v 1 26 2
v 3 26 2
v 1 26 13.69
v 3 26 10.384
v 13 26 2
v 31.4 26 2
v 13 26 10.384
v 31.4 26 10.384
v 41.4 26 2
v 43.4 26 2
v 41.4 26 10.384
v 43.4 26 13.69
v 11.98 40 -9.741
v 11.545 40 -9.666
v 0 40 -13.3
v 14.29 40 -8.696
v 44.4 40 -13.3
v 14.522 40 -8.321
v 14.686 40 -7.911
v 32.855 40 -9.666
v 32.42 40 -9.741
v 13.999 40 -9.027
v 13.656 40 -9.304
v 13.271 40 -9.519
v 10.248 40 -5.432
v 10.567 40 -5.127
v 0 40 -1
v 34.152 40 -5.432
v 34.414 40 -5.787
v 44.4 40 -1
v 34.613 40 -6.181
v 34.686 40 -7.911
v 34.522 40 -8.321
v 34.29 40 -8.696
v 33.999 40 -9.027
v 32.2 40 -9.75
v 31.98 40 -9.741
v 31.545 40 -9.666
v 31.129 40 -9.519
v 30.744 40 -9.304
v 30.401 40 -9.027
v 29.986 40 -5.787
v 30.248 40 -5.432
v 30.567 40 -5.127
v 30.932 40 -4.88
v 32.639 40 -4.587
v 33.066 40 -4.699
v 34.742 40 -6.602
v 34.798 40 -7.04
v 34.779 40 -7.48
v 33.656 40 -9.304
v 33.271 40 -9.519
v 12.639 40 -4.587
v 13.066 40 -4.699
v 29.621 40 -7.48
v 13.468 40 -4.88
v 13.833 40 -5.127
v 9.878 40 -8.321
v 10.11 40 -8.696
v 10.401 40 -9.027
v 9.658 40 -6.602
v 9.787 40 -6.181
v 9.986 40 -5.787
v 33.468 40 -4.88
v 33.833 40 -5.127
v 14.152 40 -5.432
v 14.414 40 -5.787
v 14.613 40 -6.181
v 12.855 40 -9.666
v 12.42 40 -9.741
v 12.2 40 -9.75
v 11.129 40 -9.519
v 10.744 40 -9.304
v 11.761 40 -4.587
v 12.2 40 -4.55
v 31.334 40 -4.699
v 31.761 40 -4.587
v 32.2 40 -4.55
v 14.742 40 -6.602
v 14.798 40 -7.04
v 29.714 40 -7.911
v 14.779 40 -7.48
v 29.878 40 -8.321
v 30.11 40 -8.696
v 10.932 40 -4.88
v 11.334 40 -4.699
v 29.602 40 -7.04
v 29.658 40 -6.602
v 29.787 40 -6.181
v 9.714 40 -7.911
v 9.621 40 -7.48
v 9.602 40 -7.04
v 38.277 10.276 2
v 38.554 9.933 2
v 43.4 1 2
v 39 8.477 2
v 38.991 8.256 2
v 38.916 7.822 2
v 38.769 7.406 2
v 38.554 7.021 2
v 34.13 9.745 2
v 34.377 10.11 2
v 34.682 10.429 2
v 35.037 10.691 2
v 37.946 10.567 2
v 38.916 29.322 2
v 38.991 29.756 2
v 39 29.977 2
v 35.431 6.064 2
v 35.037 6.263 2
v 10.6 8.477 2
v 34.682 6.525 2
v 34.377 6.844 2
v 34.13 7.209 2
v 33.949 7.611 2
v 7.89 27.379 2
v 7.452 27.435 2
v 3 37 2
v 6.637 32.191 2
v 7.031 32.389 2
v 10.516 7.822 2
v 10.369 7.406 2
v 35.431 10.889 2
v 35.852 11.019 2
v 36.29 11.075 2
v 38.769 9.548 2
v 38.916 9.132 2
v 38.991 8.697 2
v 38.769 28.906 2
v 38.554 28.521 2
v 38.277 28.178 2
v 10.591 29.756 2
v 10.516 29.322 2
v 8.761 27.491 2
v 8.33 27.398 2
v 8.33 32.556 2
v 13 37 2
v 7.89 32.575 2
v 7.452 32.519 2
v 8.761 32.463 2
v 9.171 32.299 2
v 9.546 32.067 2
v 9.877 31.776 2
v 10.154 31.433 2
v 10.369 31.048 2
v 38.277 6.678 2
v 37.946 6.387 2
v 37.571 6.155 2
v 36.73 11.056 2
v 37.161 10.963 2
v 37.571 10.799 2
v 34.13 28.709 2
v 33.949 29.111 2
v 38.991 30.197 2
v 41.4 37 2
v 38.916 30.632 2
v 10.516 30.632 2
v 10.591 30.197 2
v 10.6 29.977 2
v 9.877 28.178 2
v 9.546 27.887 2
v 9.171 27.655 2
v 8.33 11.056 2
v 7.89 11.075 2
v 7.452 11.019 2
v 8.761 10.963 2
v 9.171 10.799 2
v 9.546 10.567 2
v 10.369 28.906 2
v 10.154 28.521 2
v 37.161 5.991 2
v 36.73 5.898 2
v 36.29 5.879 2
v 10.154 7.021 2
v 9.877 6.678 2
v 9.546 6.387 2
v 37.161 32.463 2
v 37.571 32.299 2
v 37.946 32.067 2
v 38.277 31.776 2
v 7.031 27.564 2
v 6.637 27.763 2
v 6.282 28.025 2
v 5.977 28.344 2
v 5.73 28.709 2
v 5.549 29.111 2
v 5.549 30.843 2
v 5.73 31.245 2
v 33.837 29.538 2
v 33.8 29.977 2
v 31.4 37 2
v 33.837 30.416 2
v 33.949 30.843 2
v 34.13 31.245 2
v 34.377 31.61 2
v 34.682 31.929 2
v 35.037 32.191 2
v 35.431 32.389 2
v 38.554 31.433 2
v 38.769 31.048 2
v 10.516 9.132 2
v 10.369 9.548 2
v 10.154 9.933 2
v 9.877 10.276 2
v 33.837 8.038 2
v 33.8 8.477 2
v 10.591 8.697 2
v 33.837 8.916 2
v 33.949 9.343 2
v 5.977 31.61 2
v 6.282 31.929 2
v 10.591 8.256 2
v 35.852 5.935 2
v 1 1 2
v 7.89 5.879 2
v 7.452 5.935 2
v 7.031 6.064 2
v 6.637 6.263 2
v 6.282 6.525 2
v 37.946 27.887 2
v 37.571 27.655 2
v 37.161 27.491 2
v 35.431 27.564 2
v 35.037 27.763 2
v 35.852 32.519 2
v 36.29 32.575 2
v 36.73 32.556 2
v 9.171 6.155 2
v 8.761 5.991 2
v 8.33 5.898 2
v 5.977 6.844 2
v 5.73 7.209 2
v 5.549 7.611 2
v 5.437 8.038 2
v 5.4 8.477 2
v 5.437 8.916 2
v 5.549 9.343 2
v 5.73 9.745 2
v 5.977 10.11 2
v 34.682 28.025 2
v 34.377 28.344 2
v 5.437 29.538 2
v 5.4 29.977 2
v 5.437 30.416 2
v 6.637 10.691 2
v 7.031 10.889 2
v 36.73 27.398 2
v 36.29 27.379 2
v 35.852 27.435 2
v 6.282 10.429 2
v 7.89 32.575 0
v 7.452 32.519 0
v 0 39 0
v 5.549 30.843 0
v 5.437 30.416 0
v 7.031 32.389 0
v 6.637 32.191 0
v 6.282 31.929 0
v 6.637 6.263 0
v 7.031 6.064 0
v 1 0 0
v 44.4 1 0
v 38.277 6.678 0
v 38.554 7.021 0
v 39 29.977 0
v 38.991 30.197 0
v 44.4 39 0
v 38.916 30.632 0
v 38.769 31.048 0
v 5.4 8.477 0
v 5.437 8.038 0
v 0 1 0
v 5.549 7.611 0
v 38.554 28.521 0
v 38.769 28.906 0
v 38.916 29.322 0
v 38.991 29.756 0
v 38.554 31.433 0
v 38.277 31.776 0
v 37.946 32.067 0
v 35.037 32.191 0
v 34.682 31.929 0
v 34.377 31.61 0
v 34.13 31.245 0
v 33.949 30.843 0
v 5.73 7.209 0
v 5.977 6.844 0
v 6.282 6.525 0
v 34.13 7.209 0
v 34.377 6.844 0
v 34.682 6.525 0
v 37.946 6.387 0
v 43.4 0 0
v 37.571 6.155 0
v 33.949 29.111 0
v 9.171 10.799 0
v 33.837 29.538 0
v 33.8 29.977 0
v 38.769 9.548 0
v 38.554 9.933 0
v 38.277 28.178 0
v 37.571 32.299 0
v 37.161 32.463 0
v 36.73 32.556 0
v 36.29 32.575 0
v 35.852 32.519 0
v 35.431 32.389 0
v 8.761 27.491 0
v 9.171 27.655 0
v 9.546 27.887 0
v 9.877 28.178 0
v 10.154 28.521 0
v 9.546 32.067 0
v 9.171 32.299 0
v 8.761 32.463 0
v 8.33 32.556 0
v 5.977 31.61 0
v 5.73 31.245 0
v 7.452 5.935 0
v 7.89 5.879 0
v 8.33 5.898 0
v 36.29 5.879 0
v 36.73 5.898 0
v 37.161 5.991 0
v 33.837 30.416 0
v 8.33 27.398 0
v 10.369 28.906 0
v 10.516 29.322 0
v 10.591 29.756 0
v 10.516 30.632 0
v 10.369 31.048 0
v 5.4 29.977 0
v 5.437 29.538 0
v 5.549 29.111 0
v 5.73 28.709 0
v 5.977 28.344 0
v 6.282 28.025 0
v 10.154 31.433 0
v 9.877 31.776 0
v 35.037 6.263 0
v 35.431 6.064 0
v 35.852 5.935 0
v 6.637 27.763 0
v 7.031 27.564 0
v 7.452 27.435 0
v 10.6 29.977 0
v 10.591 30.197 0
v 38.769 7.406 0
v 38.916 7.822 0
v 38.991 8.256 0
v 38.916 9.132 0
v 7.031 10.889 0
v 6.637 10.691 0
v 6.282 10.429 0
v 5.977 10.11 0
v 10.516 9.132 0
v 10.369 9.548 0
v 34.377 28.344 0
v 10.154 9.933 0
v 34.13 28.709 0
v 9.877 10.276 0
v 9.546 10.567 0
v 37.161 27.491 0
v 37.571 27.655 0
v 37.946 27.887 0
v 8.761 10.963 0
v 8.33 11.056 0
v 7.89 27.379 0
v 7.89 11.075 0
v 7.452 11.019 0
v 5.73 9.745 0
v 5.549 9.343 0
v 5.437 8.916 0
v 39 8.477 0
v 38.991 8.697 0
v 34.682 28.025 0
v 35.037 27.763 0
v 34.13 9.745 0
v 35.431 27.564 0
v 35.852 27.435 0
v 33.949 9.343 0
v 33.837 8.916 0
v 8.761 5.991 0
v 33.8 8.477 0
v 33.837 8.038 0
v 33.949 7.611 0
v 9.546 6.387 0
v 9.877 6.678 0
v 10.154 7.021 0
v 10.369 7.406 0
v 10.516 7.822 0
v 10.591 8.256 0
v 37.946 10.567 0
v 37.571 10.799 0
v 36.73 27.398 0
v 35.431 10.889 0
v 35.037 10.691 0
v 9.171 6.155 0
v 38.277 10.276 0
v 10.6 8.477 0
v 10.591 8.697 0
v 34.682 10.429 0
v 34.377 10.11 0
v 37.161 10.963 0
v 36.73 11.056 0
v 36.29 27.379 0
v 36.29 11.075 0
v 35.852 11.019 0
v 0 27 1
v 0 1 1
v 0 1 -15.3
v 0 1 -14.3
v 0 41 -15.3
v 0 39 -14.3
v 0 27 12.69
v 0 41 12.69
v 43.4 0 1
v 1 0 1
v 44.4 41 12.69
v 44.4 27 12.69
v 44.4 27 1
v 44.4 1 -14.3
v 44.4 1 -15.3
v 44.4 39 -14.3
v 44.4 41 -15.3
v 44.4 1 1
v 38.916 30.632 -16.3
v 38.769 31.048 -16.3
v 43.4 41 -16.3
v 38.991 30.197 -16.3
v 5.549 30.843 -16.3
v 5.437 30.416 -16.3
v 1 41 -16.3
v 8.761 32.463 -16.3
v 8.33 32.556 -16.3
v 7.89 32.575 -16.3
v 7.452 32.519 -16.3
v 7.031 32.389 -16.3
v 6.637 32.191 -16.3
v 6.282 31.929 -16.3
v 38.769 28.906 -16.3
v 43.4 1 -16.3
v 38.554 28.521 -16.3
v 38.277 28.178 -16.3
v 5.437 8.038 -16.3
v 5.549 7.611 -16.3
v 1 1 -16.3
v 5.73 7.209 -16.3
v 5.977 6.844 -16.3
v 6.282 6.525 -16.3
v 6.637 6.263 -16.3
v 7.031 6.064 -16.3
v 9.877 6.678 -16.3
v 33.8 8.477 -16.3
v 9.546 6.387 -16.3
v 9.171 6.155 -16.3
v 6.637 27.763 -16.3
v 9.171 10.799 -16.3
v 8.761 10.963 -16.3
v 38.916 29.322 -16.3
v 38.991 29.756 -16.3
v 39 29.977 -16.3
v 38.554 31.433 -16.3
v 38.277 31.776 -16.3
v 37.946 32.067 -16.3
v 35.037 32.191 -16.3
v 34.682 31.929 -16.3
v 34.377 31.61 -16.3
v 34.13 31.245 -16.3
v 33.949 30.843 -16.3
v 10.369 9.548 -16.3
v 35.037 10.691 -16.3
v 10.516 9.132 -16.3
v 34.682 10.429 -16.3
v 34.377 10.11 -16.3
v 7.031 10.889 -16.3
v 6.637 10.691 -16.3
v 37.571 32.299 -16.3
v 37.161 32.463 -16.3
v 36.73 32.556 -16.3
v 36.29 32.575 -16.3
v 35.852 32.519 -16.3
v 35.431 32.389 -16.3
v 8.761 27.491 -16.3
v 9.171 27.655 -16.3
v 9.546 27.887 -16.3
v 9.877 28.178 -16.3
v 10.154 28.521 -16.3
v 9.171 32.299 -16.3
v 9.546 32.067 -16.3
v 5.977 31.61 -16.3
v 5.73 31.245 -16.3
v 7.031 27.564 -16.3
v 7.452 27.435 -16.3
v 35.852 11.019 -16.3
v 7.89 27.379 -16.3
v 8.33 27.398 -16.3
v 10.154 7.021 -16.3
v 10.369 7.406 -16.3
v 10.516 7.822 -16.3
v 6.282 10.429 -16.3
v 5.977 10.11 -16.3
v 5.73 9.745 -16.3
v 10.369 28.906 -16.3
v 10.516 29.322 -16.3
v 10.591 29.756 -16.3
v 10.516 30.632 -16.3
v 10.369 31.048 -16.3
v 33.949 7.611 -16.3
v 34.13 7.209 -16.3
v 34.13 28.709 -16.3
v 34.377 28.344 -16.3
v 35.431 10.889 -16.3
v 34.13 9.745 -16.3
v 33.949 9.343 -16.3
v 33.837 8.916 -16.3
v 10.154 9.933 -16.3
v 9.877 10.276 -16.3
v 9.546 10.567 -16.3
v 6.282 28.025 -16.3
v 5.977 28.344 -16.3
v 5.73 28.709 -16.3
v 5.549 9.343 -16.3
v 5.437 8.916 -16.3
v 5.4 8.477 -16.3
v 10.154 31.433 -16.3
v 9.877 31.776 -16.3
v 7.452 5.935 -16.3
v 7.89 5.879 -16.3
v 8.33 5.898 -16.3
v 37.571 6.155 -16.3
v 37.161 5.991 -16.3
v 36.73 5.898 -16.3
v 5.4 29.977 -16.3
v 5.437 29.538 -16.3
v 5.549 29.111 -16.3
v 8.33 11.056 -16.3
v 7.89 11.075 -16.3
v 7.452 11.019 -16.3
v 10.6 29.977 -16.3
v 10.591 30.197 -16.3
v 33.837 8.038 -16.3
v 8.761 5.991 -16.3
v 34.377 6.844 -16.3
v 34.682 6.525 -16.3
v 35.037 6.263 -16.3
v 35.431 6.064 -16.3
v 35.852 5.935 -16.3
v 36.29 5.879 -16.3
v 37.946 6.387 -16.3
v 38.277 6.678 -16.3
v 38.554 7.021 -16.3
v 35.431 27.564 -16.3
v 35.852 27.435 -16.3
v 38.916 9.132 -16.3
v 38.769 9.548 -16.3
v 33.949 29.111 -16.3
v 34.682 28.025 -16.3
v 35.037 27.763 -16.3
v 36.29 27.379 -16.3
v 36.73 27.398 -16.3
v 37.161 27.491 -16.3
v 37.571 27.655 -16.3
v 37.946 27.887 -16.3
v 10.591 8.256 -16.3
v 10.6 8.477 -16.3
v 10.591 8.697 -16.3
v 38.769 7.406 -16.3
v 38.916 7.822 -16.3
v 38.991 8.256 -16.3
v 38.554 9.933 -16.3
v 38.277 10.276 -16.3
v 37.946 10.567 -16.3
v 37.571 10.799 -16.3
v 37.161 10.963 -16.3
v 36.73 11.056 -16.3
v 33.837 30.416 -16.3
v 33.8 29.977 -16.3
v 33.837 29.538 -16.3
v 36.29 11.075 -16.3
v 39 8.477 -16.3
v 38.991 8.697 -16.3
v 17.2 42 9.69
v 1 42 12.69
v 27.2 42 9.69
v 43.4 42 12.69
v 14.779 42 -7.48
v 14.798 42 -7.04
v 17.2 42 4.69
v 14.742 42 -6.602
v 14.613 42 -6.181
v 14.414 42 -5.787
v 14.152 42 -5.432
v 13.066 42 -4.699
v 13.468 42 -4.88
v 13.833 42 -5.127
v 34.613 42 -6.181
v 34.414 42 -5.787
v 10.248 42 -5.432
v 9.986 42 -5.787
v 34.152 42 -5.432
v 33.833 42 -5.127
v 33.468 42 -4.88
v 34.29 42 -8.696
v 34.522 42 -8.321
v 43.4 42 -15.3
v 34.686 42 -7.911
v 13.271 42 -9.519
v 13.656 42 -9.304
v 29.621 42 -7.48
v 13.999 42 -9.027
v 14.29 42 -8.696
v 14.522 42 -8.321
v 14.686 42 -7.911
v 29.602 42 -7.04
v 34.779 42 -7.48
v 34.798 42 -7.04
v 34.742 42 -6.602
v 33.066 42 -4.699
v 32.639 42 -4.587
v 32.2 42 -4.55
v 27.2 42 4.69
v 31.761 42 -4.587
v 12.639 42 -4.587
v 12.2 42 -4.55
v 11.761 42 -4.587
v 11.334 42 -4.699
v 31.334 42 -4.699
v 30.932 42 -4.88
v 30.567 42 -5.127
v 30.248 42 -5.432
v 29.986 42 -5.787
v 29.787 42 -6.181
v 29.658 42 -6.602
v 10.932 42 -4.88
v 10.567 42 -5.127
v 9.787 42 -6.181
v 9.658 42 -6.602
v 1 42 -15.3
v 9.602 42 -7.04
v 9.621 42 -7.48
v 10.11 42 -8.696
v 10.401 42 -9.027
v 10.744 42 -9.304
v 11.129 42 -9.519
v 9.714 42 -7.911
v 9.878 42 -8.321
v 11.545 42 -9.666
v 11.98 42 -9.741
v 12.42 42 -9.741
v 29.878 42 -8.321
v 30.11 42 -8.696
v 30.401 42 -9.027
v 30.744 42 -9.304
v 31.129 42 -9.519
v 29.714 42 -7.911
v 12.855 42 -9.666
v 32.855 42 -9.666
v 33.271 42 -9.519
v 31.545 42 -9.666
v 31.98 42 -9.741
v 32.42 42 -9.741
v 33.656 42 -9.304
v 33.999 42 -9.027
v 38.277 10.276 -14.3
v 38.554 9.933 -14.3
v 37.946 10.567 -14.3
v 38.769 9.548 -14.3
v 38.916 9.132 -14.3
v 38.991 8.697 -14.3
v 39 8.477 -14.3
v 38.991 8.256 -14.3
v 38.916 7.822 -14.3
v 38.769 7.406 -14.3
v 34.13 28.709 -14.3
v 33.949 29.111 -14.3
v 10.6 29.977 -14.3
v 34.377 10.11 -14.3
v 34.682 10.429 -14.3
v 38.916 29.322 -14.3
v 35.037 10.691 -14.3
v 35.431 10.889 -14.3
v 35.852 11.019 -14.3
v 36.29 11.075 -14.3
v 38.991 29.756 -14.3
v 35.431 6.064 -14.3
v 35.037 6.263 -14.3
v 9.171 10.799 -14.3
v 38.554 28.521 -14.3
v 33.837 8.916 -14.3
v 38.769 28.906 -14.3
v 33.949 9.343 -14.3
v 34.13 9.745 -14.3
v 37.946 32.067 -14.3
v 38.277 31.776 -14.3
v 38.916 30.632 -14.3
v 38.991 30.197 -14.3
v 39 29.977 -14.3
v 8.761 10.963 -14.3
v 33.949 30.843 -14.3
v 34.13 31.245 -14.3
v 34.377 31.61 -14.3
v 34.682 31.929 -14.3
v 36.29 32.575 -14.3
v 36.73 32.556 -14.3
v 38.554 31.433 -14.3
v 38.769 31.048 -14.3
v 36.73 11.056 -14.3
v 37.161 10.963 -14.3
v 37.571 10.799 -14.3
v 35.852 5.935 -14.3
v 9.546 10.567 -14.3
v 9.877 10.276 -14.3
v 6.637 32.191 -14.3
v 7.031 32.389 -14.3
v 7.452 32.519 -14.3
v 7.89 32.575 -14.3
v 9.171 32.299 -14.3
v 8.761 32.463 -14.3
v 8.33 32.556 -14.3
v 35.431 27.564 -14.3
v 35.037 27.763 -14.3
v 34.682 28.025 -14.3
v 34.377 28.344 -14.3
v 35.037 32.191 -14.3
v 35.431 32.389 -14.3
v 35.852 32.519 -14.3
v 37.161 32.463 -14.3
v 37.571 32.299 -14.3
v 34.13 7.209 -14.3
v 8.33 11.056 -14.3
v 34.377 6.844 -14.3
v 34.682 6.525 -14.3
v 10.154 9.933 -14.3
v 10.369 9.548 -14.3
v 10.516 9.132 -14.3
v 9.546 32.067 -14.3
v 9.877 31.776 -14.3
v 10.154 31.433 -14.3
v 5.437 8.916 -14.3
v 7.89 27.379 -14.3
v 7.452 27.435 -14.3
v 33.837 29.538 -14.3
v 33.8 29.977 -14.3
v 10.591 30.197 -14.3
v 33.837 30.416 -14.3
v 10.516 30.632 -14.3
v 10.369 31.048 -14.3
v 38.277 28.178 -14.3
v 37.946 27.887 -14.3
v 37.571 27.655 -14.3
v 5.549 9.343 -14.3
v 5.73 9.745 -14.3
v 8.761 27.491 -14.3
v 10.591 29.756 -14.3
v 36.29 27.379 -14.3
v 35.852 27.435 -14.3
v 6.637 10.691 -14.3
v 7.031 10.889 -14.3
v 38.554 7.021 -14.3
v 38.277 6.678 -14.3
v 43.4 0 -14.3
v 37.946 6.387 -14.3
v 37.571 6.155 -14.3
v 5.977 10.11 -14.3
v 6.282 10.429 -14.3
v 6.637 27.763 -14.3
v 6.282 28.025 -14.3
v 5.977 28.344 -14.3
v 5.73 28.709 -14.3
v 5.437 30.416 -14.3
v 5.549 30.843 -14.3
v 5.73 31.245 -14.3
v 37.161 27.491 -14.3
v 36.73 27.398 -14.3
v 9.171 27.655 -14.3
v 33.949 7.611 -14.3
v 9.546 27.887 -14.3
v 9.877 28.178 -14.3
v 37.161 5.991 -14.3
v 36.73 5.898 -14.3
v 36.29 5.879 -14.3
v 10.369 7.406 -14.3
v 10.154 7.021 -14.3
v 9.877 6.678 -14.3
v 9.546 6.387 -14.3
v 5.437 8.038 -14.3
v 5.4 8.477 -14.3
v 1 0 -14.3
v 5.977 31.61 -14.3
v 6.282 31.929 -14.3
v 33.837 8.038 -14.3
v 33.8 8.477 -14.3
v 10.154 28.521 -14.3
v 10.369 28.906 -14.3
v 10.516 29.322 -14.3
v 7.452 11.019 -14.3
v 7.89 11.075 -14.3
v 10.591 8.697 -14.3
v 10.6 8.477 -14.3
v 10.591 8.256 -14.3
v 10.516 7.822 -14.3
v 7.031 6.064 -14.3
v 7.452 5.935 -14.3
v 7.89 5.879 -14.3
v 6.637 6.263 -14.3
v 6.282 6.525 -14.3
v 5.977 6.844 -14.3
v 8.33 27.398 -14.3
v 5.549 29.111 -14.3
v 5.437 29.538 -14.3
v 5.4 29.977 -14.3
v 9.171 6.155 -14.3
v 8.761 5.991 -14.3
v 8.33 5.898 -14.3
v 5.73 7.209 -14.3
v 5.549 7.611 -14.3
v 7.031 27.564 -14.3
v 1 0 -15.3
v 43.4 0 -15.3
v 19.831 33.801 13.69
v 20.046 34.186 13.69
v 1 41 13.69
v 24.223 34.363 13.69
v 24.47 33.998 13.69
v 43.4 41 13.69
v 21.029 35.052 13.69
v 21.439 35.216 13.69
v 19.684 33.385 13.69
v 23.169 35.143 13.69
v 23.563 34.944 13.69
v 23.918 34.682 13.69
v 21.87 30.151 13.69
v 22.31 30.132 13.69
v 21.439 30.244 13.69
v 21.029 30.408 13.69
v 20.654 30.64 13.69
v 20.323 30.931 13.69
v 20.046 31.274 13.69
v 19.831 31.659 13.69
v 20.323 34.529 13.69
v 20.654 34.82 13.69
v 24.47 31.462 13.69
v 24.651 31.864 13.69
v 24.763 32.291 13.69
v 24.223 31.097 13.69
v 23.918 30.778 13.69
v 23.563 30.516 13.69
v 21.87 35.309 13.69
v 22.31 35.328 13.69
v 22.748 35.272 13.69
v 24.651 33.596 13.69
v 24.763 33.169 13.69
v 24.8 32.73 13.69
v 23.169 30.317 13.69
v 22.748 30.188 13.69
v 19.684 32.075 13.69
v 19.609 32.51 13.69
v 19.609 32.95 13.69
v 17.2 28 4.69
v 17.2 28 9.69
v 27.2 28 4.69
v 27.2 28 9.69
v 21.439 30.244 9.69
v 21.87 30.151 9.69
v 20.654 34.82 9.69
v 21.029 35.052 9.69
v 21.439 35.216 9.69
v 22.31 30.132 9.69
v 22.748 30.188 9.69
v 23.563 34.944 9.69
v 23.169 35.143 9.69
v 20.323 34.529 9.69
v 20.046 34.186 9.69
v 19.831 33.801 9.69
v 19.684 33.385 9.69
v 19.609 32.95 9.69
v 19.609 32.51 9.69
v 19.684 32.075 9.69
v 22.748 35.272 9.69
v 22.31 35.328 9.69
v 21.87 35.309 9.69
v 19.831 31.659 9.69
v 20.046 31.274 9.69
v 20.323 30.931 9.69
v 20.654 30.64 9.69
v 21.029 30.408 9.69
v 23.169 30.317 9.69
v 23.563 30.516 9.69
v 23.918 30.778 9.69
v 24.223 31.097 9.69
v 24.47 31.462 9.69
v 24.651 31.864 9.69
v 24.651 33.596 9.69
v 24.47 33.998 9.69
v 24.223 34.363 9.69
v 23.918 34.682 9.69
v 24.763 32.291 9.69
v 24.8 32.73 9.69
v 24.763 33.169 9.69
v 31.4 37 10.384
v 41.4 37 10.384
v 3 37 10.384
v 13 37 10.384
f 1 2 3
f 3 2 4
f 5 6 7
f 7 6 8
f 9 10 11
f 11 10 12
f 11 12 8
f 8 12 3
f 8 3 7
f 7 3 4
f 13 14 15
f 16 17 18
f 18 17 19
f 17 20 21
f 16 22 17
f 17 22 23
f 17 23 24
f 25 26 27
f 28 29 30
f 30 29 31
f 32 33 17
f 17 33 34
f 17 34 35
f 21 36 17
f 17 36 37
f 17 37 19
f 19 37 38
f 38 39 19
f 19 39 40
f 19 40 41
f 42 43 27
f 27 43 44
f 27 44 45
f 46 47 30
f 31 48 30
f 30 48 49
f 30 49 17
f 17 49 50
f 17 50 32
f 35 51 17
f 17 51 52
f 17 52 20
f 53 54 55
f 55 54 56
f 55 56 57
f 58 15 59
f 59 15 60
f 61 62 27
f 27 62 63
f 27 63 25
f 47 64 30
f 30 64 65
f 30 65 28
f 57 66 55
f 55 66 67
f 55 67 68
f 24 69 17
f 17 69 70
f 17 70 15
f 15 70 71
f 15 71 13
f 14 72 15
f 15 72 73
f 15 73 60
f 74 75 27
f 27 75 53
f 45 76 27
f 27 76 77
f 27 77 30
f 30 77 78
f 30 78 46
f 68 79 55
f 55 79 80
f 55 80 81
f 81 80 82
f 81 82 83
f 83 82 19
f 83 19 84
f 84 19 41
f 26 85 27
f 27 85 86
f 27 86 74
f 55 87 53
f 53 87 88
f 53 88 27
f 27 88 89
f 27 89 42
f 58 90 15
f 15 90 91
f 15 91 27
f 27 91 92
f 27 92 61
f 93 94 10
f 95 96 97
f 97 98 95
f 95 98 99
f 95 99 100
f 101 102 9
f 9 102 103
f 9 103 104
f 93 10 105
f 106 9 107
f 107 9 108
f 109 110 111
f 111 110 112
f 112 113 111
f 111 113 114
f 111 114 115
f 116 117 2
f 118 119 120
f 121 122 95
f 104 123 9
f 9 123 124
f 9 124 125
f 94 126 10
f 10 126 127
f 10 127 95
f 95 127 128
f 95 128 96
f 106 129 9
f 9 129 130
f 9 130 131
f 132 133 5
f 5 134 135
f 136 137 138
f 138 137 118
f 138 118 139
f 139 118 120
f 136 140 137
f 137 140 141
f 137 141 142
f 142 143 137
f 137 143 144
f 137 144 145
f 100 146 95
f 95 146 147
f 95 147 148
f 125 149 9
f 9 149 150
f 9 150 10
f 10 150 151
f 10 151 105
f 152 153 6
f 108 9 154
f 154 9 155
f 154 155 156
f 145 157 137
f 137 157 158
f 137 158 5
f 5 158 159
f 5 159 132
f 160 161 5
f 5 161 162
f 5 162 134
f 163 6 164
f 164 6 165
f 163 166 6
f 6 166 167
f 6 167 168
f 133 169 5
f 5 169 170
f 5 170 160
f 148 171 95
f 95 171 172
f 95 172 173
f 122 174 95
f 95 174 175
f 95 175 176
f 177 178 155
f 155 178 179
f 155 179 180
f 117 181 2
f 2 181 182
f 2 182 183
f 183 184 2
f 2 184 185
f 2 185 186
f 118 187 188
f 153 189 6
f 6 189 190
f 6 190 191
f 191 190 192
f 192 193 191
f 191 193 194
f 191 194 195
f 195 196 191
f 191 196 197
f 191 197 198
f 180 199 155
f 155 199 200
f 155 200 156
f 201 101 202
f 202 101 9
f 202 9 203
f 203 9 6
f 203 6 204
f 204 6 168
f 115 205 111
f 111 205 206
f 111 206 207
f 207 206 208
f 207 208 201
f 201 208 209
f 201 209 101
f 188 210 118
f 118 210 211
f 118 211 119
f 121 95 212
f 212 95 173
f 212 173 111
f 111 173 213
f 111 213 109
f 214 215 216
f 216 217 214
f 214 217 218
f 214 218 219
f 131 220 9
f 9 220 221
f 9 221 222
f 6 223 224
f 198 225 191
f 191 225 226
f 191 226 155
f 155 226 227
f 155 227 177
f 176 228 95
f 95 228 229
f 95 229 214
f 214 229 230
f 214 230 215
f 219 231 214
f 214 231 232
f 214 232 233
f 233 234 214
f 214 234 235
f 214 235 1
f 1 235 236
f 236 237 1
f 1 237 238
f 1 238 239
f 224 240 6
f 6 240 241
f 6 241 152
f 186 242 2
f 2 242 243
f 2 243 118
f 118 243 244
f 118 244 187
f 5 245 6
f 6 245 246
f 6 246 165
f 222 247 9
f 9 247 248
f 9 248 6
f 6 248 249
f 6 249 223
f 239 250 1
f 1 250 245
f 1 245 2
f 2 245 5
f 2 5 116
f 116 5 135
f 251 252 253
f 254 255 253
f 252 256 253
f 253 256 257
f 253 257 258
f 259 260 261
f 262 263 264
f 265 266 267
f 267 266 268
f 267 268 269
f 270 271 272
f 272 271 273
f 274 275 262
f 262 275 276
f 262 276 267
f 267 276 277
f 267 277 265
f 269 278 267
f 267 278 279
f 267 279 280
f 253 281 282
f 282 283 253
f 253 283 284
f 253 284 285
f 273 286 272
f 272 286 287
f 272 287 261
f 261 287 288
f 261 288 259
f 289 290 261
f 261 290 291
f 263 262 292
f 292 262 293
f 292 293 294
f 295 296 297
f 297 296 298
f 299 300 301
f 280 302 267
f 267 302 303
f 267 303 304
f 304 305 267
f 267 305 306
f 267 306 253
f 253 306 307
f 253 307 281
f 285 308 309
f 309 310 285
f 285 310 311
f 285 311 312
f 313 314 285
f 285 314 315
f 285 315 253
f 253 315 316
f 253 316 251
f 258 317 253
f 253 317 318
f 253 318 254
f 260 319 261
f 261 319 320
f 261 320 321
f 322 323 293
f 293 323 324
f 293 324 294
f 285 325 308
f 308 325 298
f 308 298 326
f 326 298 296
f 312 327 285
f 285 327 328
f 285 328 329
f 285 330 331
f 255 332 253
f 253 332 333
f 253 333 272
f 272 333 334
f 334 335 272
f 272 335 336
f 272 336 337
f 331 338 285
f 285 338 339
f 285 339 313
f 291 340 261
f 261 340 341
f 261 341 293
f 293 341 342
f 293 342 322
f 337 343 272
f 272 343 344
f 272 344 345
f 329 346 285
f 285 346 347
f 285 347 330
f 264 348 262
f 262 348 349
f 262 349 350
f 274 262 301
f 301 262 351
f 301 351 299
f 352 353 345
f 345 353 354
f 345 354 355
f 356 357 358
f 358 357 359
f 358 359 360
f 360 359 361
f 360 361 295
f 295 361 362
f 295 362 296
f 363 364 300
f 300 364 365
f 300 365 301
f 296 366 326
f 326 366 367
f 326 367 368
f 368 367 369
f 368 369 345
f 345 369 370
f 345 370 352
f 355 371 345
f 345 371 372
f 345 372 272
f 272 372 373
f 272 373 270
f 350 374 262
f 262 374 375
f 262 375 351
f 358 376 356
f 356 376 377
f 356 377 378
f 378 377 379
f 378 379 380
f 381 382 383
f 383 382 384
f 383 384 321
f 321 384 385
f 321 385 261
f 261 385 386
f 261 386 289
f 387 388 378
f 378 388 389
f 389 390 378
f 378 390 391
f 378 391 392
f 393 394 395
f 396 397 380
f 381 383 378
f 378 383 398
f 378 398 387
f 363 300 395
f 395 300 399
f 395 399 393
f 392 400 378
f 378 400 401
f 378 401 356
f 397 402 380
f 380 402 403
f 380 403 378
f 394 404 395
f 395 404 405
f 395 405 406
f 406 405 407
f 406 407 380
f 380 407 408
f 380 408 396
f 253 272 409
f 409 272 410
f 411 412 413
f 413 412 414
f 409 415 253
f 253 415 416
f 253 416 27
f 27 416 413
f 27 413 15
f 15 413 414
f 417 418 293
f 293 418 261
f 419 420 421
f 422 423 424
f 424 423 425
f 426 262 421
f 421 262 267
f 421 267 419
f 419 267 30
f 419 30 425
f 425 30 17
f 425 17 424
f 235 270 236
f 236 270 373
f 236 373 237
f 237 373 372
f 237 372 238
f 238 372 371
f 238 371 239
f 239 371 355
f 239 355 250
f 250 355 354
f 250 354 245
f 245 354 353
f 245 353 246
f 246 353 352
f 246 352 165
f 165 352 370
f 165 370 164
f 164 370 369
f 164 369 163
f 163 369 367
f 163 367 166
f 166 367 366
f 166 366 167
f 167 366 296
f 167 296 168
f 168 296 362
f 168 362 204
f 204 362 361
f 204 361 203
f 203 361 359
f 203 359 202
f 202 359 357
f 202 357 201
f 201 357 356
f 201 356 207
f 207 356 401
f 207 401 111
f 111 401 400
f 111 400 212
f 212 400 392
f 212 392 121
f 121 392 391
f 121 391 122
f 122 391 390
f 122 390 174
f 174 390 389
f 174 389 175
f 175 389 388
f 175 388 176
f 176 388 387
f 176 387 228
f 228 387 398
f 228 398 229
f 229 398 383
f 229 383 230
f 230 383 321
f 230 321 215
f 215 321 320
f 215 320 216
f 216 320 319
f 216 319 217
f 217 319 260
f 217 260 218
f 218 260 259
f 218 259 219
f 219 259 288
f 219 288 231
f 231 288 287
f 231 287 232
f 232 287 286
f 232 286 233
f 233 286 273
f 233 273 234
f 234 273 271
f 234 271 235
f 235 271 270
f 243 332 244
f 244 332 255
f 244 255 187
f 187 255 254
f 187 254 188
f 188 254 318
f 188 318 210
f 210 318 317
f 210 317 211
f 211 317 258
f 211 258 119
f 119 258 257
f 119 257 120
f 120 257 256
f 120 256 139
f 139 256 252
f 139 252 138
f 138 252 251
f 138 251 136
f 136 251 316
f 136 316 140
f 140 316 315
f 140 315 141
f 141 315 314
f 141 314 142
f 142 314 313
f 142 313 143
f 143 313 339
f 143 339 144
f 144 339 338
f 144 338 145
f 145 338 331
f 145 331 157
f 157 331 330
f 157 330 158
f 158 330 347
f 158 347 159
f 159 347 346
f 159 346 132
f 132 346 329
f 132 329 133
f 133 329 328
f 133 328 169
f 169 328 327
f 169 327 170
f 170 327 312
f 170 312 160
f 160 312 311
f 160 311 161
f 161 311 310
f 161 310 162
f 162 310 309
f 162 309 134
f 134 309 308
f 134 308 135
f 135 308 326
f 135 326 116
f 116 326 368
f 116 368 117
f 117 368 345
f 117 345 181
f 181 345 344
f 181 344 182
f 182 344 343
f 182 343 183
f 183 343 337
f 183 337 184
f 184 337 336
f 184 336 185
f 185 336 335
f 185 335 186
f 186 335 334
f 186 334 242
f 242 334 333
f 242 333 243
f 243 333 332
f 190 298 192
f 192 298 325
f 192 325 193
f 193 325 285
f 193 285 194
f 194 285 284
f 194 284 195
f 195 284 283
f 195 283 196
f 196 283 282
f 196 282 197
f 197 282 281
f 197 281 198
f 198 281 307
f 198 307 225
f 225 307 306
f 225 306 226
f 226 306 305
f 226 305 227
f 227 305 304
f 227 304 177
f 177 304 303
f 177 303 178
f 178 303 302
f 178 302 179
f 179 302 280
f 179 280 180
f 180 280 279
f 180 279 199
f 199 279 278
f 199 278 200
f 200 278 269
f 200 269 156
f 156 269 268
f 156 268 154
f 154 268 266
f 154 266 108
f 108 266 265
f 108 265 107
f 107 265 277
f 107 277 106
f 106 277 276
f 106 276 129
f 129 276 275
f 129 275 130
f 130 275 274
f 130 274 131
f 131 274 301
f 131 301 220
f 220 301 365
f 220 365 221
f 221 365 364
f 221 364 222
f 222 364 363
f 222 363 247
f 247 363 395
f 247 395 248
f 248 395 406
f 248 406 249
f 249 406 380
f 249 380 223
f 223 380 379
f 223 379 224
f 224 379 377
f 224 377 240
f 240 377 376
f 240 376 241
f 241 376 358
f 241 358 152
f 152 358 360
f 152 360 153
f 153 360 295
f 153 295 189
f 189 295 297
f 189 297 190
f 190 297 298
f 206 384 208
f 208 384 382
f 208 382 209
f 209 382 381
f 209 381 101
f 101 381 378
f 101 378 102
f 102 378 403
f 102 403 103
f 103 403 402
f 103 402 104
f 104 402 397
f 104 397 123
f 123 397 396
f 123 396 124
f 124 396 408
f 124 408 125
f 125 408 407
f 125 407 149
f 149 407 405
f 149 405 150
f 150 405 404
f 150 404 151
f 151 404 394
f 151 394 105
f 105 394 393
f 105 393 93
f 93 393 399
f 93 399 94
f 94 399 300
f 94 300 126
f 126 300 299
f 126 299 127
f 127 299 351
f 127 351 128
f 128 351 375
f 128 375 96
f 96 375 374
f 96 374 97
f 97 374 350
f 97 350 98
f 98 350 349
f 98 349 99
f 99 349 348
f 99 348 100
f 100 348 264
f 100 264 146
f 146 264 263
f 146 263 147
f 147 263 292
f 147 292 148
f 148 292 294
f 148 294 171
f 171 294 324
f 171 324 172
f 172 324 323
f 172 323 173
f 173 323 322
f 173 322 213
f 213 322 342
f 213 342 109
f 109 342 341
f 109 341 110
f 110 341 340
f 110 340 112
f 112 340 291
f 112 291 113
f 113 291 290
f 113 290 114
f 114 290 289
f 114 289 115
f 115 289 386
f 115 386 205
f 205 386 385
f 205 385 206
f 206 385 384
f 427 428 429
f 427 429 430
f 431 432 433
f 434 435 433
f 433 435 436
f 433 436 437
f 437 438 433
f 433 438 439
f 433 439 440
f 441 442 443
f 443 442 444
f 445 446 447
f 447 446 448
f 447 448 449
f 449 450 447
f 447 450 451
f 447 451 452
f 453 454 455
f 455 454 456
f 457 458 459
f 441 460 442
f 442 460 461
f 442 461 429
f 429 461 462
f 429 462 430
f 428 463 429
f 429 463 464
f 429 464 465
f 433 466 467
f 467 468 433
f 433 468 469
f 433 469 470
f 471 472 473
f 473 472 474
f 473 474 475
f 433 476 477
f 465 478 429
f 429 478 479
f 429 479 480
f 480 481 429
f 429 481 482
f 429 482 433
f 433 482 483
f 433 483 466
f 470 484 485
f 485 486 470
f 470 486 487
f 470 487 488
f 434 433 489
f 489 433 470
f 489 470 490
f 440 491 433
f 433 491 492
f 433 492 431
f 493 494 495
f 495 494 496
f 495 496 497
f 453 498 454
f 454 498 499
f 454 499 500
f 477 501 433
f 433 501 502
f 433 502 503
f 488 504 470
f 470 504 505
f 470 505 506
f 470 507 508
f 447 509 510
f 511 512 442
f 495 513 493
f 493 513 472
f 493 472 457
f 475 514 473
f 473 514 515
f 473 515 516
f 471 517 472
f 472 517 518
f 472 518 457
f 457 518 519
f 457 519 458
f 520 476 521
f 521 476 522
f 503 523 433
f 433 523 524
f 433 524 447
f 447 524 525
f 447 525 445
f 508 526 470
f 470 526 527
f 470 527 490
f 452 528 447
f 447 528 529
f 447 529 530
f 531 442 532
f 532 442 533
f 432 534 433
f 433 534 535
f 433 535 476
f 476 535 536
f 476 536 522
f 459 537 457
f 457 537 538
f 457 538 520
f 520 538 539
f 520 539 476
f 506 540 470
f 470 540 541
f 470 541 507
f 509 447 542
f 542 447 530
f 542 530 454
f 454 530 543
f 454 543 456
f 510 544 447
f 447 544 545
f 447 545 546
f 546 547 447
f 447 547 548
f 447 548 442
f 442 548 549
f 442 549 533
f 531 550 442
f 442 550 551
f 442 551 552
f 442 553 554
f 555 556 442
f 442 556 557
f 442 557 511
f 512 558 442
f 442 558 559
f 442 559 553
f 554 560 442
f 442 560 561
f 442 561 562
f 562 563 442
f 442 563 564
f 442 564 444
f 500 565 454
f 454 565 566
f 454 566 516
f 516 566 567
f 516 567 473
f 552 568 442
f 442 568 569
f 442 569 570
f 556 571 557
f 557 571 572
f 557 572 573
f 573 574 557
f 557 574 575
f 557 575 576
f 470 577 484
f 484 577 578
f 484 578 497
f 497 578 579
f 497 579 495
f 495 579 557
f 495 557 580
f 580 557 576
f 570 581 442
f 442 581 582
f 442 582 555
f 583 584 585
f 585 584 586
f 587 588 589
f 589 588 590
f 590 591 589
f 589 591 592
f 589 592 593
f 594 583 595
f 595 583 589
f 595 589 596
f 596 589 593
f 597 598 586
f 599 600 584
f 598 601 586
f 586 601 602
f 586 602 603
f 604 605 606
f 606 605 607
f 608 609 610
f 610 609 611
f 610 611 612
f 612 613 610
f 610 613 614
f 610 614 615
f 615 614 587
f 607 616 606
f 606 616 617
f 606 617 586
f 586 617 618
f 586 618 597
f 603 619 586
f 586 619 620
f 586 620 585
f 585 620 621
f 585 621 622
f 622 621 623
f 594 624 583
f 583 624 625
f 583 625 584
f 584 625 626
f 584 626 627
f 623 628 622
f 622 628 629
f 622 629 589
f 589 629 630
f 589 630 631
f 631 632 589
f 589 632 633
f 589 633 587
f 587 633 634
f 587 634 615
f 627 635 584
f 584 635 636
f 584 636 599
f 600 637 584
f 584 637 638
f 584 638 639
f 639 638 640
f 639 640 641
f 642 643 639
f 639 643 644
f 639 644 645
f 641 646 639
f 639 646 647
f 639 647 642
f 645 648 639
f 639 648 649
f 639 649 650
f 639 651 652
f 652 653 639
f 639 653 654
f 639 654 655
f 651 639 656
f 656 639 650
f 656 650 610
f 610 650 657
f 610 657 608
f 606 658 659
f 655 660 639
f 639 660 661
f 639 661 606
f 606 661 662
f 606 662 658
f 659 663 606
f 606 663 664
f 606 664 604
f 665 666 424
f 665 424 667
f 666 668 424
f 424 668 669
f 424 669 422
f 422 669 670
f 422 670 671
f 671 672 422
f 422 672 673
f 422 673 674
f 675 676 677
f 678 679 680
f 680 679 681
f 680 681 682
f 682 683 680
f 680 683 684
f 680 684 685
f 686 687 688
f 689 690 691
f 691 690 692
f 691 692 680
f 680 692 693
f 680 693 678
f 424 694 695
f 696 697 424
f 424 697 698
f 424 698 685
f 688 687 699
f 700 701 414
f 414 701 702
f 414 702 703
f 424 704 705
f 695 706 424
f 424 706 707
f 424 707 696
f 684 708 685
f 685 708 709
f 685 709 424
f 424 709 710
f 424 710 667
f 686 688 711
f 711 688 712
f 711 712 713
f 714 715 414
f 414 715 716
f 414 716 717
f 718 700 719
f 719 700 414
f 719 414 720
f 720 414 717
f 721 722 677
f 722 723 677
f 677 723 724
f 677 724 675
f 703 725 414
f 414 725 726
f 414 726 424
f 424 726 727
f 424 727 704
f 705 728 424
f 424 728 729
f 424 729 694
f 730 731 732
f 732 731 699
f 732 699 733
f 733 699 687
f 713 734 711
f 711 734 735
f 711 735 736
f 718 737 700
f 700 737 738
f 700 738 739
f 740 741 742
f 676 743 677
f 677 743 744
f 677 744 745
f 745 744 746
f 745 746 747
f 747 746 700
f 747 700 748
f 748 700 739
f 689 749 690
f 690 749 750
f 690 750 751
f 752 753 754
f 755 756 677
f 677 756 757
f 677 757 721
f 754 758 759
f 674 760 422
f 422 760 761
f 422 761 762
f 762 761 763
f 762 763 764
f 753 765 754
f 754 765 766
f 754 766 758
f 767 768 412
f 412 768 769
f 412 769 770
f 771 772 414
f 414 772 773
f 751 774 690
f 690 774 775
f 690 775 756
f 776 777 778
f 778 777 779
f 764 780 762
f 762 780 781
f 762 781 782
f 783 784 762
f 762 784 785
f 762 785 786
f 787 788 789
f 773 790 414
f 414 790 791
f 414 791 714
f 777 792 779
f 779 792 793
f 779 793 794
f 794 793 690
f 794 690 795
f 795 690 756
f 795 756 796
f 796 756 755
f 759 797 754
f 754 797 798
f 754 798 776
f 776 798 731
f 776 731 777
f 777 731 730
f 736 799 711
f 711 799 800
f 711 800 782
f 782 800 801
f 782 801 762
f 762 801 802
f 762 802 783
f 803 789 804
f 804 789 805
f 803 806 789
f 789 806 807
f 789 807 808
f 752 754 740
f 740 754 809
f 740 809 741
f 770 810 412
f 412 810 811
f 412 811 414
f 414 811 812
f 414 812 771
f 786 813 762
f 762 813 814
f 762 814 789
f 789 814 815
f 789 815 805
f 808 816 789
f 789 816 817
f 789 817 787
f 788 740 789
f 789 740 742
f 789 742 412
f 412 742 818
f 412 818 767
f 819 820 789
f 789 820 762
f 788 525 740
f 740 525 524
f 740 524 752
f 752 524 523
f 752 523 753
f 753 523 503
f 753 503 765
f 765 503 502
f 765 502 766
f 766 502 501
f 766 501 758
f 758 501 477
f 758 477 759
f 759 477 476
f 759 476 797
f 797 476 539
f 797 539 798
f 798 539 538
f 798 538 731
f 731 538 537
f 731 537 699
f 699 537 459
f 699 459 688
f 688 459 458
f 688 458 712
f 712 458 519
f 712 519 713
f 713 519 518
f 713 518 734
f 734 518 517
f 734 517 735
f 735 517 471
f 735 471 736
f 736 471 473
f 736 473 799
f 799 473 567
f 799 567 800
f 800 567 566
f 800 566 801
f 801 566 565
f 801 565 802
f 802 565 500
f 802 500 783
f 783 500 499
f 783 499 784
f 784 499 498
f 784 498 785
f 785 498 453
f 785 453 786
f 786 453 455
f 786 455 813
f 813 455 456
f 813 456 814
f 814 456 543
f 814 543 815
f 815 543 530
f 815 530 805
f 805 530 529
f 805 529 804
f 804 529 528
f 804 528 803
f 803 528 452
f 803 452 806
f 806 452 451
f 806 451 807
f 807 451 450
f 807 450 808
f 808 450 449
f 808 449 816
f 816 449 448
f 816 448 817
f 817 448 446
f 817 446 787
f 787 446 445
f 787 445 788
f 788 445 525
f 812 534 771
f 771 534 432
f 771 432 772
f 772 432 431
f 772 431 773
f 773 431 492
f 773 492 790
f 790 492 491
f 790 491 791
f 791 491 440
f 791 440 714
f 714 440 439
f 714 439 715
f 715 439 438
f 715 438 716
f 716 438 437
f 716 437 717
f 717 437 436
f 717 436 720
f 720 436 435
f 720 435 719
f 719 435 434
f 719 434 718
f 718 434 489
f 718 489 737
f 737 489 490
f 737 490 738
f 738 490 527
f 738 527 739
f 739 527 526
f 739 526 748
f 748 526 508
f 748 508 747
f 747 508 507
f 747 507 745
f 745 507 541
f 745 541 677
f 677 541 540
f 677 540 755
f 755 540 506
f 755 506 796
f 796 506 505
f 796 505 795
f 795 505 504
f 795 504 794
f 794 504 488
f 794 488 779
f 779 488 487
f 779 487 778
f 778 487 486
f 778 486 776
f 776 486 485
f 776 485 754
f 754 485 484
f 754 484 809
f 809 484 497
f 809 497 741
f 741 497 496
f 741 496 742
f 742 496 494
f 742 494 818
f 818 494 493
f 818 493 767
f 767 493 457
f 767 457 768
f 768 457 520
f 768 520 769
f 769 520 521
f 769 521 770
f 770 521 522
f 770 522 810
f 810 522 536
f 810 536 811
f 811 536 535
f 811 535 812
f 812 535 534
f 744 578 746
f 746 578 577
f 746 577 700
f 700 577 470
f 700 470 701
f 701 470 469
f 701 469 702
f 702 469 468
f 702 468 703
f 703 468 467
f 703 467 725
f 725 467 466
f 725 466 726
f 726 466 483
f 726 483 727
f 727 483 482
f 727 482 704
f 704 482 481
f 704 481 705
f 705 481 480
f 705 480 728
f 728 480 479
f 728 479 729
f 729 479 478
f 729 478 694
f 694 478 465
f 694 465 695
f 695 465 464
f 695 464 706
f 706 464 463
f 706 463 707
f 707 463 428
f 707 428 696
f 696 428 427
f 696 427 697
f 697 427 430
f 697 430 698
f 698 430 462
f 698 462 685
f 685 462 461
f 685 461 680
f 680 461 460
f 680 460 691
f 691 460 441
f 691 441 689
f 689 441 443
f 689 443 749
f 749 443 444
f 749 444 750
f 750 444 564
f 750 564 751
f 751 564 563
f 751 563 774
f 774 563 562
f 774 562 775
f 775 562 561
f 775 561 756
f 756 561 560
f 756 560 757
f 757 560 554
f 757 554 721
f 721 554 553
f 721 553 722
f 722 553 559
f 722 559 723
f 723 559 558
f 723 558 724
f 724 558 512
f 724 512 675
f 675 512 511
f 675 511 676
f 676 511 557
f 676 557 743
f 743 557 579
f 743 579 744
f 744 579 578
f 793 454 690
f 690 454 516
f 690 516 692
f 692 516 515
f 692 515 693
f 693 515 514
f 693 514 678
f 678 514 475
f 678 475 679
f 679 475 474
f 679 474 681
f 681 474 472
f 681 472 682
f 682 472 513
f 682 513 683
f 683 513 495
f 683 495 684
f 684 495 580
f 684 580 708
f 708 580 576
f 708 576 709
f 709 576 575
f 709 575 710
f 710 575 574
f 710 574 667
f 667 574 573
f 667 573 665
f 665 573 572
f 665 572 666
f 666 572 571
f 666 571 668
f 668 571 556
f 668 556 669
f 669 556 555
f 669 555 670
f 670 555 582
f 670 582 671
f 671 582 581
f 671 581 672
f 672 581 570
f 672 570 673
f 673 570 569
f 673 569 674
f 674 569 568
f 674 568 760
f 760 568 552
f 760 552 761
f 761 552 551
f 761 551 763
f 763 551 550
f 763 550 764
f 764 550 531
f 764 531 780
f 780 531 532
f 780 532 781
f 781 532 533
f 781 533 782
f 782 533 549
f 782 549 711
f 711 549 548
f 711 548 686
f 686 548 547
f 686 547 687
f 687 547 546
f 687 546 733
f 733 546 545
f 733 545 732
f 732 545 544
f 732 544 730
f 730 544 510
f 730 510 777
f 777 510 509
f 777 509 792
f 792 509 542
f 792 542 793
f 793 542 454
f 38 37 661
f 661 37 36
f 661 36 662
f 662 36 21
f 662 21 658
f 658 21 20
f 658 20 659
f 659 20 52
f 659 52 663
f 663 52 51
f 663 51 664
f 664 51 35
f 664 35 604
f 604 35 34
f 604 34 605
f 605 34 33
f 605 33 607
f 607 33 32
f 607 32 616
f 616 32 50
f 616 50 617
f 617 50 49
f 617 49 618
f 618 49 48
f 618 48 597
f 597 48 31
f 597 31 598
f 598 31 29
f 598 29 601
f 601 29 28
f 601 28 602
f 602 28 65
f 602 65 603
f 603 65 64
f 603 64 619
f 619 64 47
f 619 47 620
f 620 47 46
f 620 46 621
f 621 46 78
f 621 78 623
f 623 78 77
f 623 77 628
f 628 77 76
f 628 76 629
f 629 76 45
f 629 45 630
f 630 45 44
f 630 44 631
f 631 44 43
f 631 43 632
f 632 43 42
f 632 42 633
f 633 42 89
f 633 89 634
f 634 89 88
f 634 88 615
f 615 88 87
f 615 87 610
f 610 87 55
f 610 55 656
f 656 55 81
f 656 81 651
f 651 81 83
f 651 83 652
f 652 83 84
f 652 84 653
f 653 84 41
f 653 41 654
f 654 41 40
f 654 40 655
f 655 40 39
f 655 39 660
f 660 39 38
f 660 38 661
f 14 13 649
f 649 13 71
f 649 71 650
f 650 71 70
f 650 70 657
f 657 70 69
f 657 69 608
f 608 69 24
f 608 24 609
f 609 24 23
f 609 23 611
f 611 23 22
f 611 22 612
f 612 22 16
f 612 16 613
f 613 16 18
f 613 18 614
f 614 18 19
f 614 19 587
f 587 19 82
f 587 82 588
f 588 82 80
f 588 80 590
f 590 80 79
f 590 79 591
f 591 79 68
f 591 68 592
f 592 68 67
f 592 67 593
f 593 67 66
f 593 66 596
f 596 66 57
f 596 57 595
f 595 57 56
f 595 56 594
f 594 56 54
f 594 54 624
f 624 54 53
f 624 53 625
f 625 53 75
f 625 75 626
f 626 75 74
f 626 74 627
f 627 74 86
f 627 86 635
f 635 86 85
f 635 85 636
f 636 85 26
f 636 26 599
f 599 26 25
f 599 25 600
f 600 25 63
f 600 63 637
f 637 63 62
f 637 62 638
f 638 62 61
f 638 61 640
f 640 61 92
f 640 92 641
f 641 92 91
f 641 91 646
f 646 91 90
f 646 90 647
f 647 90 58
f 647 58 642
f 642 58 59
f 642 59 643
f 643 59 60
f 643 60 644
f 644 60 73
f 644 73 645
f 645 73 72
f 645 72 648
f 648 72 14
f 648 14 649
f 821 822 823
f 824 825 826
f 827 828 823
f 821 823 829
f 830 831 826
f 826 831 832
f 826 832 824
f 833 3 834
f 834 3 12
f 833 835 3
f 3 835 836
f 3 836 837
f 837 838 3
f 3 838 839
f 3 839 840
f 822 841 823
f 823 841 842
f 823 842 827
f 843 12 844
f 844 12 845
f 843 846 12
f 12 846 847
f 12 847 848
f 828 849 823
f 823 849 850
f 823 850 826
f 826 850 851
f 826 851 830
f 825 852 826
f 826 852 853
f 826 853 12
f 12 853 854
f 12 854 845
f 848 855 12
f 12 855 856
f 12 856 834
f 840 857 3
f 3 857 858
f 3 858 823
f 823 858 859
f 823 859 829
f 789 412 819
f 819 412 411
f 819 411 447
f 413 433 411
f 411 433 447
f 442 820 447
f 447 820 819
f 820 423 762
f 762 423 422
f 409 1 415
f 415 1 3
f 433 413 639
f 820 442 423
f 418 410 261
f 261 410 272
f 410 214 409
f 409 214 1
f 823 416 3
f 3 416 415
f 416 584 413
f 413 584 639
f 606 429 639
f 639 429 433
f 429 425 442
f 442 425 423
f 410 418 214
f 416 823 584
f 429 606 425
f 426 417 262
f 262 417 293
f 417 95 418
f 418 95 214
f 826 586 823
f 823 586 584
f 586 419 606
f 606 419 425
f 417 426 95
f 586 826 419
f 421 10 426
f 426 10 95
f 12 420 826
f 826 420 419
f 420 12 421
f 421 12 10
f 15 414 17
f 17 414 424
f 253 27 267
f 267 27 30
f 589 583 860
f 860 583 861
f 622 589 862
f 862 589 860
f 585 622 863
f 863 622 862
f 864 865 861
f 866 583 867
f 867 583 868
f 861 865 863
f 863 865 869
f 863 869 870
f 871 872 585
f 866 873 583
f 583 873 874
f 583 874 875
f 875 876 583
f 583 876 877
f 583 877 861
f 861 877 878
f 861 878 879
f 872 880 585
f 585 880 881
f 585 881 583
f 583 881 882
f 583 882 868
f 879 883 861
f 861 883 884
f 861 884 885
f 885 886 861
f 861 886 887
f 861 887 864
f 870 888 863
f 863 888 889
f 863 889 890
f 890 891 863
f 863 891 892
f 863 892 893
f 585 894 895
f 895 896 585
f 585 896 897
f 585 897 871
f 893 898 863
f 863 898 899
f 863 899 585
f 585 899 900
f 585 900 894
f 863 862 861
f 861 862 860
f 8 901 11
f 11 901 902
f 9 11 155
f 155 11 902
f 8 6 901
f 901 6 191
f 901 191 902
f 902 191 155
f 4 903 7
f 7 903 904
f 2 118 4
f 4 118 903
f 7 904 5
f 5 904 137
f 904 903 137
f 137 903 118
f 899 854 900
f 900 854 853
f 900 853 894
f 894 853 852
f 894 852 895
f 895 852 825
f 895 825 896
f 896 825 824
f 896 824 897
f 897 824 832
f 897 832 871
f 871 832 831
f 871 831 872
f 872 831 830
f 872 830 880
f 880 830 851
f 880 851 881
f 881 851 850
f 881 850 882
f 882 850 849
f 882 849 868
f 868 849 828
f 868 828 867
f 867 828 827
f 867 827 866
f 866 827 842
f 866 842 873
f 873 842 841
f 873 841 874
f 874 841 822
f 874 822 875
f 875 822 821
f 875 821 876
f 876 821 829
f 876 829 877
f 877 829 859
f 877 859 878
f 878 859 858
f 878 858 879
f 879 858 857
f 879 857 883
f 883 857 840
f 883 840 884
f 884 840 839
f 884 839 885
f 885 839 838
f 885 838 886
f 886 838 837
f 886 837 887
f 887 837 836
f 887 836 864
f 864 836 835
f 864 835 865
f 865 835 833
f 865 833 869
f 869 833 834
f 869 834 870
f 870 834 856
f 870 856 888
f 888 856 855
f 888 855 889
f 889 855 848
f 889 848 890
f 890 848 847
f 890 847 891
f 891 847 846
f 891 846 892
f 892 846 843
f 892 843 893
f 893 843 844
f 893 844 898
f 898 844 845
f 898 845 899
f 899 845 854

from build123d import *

# Parameters (mm, degrees)
SKETCH1_W           = 44.4
SKETCH1_H           = 40
SKETCH1_R           = 2.6
BOSS_EXTRUDE1_DEPTH = 2
SKETCH2_W           = 44.4
SKETCH2_H           = 18.3
BOSS_EXTRUDE2_DEPTH = 2
LPATTERN1_COUNT     = 2
LPATTERN1_PITCH     = 16.3
SKETCH3_R           = 2.6
CUT_EXTRUDE1_DEPTH  = 64.253853638
BOSS_EXTRUDE3_START = -22.2
SKETCH6_W           = 11.69
SKETCH6_H           = 16
BOSS_EXTRUDE3_DEPTH = 44.4
FILLET4_SIZE        = 1
SKETCH11_W          = 10
SKETCH11_H          = 5
CUT_EXTRUDE6_DEPTH  = 14
SKETCH12_W          = 10
SKETCH12_H          = 8.384441544
CUT_EXTRUDE7_DEPTH  = 11
SKETCH7_R           = 2.6
CUT_EXTRUDE2_DEPTH  = 9


with BuildPart() as part:
    # Sketch1 → Boss-Extrude1 (new body)
    with BuildSketch(Plane.XY):
        with Locations((22.2, 20)):
            Rectangle(SKETCH1_W, SKETCH1_H)
        with Locations((8, 8.476902454)):
            Circle(SKETCH1_R, mode=Mode.SUBTRACT)
        with Locations((8, 29.976902454)):
            Circle(SKETCH1_R, mode=Mode.SUBTRACT)
        with Locations((36.4, 29.976902454)):
            Circle(SKETCH1_R, mode=Mode.SUBTRACT)
        with Locations((36.4, 8.476902454)):
            Circle(SKETCH1_R, mode=Mode.SUBTRACT)
    boss_extrude1 = extrude(amount=BOSS_EXTRUDE1_DEPTH)

    # Sketch2 → Boss-Extrude2 (add)
    with BuildSketch(Plane(origin=(0, 40, 0), x_dir=(1, 0, 0), z_dir=(0, 1, 0))):
        with Locations((22.2, 7.15)):
            Rectangle(SKETCH2_W, SKETCH2_H)
    extrude(amount=BOSS_EXTRUDE2_DEPTH)

    # LPattern1: Boss-Extrude1 ×2
    with Locations(*[(0, 0, -i * LPATTERN1_PITCH) for i in range(1, LPATTERN1_COUNT)]):
        add(boss_extrude1)

    # Sketch3 → Cut-Extrude1 (cut, through all)
    with BuildSketch(Plane(origin=(0, 42, 0), x_dir=(1, 0, 0), z_dir=(0, 1, 0))):
        with Locations(Location((12.2, 7.15, 0), (0, 0, 270))):
            Circle(SKETCH3_R)
        with Locations(Location((32.2, 7.15, 0), (0, 0, 270))):
            Circle(SKETCH3_R)
    extrude(amount=-CUT_EXTRUDE1_DEPTH, mode=Mode.SUBTRACT)

    # Sketch6 → Boss-Extrude3 (add)
    with BuildSketch(Plane(origin=(22.2, 0, 0), x_dir=(0, 0, -1), z_dir=(1, 0, 0)).offset(BOSS_EXTRUDE3_START)):
        with Locations((-7.845, 34)):
            Rectangle(SKETCH6_W, SKETCH6_H)
    extrude(amount=BOSS_EXTRUDE3_DEPTH)

    # Fillet4
    fillet4_edges = [part.edges().sort_by_distance(p)[0] for p in [
        (44.4, 13, 2),
        (0, 21, -16.3),
        (44.4, 21, -16.3),
        (0, 42, -1.305),
        (44.4, 42, -1.305),
        (22.2, 42, -16.3),
        (22.2, 40, -14.3),
        (22.2, 0, -16.3),
        (0, 0, -15.3),
        (44.4, 0, -15.3),
        (22.2, 40, 0),
        (0, 13, 2),
        (44.4, 26, 7.845),
        (44.4, 34, 13.69),
        (22.2, 42, 13.69),
        (0, 26, 7.845),
        (0, 34, 13.69),
        (44.4, 0, 1),
        (0, 0, 1),
        (22.2, 0, 2),
    ]]
    chamfer(fillet4_edges, length=FILLET4_SIZE)

    # Sketch11 → Cut-Extrude6 (cut)
    with BuildSketch(Plane(origin=(0, 42, 0), x_dir=(1, 0, 0), z_dir=(0, 1, 0))):
        with Locations((22.2, -7.19)):
            Rectangle(SKETCH11_W, SKETCH11_H)
    extrude(amount=-CUT_EXTRUDE6_DEPTH, mode=Mode.SUBTRACT)

    # Sketch12 → Cut-Extrude7 (cut)
    with BuildSketch(Plane.XZ.offset(-26)):
        with Locations((8, 6.192220772)):
            Rectangle(SKETCH12_W, SKETCH12_H)
        with Locations((36.4, 6.192220772)):
            Rectangle(SKETCH12_W, SKETCH12_H)
    extrude(amount=-CUT_EXTRUDE7_DEPTH, mode=Mode.SUBTRACT)

    # Sketch7 → Cut-Extrude2 (cut)
    with BuildSketch(Plane.XY.offset(13.69)):
        with Locations((22.2, 32.73)):
            Circle(SKETCH7_R)
    extrude(amount=-CUT_EXTRUDE2_DEPTH, mode=Mode.SUBTRACT)


solid = part.part
